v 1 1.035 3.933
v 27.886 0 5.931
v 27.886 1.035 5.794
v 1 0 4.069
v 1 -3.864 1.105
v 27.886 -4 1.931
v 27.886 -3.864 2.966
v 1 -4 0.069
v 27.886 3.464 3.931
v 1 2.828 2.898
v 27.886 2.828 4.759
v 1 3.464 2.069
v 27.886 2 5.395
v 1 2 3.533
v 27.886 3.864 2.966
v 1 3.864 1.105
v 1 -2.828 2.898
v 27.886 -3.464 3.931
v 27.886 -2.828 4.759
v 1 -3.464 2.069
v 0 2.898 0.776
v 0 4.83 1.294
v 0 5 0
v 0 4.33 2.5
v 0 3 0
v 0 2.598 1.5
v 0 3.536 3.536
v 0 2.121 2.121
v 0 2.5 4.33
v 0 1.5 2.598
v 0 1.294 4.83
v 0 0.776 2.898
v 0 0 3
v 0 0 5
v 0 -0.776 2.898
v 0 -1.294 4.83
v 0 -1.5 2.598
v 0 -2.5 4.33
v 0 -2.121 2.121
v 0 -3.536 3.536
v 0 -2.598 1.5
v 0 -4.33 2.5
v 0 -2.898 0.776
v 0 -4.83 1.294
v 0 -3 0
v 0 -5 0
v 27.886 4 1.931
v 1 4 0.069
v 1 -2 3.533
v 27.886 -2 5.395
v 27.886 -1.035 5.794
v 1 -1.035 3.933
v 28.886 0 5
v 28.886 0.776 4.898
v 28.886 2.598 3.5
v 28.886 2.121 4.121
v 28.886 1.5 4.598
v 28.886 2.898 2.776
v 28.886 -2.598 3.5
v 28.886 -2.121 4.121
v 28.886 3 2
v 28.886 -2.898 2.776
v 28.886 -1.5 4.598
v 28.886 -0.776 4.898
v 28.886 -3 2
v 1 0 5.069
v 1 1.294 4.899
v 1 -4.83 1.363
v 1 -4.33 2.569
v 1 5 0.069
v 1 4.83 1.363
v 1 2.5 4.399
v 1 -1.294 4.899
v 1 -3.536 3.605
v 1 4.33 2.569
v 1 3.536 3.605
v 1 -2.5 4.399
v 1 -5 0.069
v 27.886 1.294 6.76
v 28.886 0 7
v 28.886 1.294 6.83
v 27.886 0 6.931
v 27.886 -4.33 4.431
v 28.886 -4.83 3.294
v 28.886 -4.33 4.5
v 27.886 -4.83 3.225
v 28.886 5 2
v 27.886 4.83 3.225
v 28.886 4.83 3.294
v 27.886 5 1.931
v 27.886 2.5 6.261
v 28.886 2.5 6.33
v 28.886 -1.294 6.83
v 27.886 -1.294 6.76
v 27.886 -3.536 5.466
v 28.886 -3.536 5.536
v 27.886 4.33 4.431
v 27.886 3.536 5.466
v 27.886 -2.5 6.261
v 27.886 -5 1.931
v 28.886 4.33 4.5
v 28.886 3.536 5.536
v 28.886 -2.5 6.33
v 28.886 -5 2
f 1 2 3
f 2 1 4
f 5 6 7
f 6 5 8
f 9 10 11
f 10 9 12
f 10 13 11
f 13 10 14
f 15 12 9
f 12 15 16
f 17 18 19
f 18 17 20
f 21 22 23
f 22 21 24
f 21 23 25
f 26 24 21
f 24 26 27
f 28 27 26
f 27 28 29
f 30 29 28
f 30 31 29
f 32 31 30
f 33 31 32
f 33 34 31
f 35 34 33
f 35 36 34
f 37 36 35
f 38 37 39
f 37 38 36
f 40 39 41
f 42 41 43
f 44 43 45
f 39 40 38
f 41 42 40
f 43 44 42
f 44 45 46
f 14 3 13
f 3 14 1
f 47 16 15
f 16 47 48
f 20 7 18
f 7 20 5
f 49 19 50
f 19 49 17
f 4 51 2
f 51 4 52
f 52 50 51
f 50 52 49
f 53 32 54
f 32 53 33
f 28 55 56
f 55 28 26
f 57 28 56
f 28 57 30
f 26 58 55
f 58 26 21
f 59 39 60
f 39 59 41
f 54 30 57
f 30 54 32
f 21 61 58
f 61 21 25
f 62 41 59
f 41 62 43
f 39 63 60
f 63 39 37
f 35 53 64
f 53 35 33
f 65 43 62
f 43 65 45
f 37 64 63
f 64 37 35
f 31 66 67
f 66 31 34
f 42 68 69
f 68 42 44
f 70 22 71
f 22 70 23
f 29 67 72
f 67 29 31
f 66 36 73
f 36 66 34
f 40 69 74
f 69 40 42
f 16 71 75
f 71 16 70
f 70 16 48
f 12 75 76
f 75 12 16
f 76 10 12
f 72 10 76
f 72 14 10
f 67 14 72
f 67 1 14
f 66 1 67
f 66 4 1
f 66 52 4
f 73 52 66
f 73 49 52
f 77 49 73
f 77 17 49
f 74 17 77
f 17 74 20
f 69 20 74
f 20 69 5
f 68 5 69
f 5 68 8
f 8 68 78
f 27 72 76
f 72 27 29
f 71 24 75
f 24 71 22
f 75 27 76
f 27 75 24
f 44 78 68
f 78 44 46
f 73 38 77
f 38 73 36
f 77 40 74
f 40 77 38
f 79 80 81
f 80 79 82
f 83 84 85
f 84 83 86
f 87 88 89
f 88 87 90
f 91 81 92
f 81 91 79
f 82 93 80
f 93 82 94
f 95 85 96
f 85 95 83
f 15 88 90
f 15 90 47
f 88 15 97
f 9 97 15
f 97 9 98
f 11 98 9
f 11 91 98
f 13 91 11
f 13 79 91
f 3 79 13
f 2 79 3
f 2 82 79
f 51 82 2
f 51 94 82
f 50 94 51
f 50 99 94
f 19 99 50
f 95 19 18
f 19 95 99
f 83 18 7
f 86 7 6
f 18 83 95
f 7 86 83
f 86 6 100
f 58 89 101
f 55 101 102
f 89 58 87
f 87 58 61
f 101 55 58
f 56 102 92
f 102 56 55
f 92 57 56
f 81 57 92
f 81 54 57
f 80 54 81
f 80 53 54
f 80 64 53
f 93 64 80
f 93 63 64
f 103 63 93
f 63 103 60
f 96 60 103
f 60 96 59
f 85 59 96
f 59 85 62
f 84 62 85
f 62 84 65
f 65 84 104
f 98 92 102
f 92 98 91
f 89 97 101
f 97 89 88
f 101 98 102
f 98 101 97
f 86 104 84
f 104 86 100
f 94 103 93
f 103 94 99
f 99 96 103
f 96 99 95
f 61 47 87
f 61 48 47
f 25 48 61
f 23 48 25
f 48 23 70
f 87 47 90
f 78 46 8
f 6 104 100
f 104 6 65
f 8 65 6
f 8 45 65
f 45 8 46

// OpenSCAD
// file: ../build_environments.scad
// build_environments.scad: modules to build level sections
//

module pool(diameter=10.0, wall_height=2.0, step_width=3.0, connections=[])
{
    difference() {
        union() {
        difference() {
            cylinder(h=0.5,r1=diameter+step_width,r2=diameter+step_width,$fn=48);
            translate([0,0,-0.1])
                cylinder(h=0.7,r1=diameter,r2=diameter,$fn=48);
        }
        difference() {
            cylinder(h=wall_height,r1=diameter+step_width+1.0,r2=diameter+step_width+1.0,$fn=48);
            translate([0,0,-0.1])
                cylinder(h=wall_height+0.2,r1=diameter+step_width,r2=diameter+step_width,$fn=48);
        }
        }
    
        for (c = connections)
        {
            rotate([0,90,0]) {
                angle = atan2(c[1],c[0]);
                rotate([-angle,0,0]) {
                    cylinder(h=diameter+5.0,r1=c[2],r2=c[2],$fn=48);
                }
            }
        }
    }
}

module straight(length=10.0, width=2.0, dy1=0.0, dy2=0.0, dz=0.0)
{
    dims = [0, 0, 0, 0, 0, (dz/length)];
    matrix = [
        [ 1, dims[0], dims[1], 0 ],
        [ dims[2], 1, dims[4], 0 ],
        [ dims[5], dims[3], 1, 0 ],
        [ 0, 0, 0, 1 ]
    ];
    multmatrix(matrix)
    difference() {
        translate([dy1,0,0])
        union() {
            rotate([0,90,0]) {
                difference() {
                    cylinder(h=(length-dy1-dy2),r1=width+1.0,r2=width+1.0,$fn=24);
                    translate([0,0,-0.1])
                        cylinder(h=(length-dy1-dy2+0.2),r1=width,r2=width,$fn=24);
                }
                difference() {
                    cylinder(h=1.0,r1=width+2.0,r2=width+2.0,$fn=24);
                    translate([0,0,-0.1])
                        cylinder(h=1.2,r1=width,r2=width,$fn=24);
                }
                translate([0,0,(length-dy1-dy2)-1.0]) {
                    difference() {
                        cylinder(h=1.0,r1=width+2.0,r2=width+2.0,$fn=24);
                        translate([0,0,-0.1])
                            cylinder(h=1.2,r1=width,r2=width,$fn=24);
                    }
                }
            }
        }
        translate([0,0,-(2*width+4.0)/2])
            cube([3*length,3*length,2*width+4.0],center=true);
    }
}

module curve(p0=[0,0], center=[0,0], dir=1, angle=0.0, width=2.0)
{
    radius = sqrt((p0[0]-center[0])*(p0[0]-center[0]) + (p0[1]-center[1])*(p0[1]-center[1]));
    if (dir == 0) {
        difference() {
            rotate([0,0,-90])
            difference() {
                rotate_extrude(angle = angle, convexity = 10, $fn=32)
                    translate([radius, 0, 0])
                        circle(r = width+1.0,$fn=24);
                rotate([0,0,-1.0])
                    rotate_extrude(angle = angle+2.0, convexity = 10, $fn=32)
                        translate([radius, 0, 0])
                            circle(r = width,$fn=24);
            }
            translate([0,0,-(2*width+4.0)/2])
                cube([5*radius,5*radius,2*width+4.0],center=true);
        }
    }
    else {
        difference() {
            rotate([0,0,90])
            difference() {
                rotate_extrude(angle = -angle, convexity = 10, $fn=32)
                    translate([radius, 0, 0])
                        circle(r = width+1.0,$fn=24);
                rotate([0,0,1.0])
                    rotate_extrude(angle = -angle-2.0, convexity = 10, $fn=32)
                        translate([radius, 0, 0])
                            circle(r = width,$fn=24);
            }
            translate([0,0,-(2*width+4.0)/2])
                cube([5*radius,5*radius,2*width+4.0],center=true);
        }
    }

}

// test pool
//pool(diameter=12.0000, wall_height=3.0000, step_width=3.0000, connections=[[0.0000,-26.0000,2.0000], [23.6074,0.0000,2.0000]]);

// test straight, slope
//straight(length=26.0000, width=2.0000, dy1=11.8322, dy2=6.7082, dz=0.0000);
//straight(length=29.1549, width=12.0000, dy1=0.0000, dy2=0.0000, dz=-15.0000);

// test curve
//curve(p0=[23.6074, 0.0000], center=[23.6074, 5.0000], dir=0, angle=60.1011, width=2.0000);
//curve(p0=[33.6426, 12.4219], center=[37.9771, 9.9295], dir=1, angle=120.4627, width=2.0000);
// main file
use <../build_environments.scad>;
straight(length=28.8865, width=3.0000, dy1=0.0000, dy2=0.0000, dz=2.0000);
